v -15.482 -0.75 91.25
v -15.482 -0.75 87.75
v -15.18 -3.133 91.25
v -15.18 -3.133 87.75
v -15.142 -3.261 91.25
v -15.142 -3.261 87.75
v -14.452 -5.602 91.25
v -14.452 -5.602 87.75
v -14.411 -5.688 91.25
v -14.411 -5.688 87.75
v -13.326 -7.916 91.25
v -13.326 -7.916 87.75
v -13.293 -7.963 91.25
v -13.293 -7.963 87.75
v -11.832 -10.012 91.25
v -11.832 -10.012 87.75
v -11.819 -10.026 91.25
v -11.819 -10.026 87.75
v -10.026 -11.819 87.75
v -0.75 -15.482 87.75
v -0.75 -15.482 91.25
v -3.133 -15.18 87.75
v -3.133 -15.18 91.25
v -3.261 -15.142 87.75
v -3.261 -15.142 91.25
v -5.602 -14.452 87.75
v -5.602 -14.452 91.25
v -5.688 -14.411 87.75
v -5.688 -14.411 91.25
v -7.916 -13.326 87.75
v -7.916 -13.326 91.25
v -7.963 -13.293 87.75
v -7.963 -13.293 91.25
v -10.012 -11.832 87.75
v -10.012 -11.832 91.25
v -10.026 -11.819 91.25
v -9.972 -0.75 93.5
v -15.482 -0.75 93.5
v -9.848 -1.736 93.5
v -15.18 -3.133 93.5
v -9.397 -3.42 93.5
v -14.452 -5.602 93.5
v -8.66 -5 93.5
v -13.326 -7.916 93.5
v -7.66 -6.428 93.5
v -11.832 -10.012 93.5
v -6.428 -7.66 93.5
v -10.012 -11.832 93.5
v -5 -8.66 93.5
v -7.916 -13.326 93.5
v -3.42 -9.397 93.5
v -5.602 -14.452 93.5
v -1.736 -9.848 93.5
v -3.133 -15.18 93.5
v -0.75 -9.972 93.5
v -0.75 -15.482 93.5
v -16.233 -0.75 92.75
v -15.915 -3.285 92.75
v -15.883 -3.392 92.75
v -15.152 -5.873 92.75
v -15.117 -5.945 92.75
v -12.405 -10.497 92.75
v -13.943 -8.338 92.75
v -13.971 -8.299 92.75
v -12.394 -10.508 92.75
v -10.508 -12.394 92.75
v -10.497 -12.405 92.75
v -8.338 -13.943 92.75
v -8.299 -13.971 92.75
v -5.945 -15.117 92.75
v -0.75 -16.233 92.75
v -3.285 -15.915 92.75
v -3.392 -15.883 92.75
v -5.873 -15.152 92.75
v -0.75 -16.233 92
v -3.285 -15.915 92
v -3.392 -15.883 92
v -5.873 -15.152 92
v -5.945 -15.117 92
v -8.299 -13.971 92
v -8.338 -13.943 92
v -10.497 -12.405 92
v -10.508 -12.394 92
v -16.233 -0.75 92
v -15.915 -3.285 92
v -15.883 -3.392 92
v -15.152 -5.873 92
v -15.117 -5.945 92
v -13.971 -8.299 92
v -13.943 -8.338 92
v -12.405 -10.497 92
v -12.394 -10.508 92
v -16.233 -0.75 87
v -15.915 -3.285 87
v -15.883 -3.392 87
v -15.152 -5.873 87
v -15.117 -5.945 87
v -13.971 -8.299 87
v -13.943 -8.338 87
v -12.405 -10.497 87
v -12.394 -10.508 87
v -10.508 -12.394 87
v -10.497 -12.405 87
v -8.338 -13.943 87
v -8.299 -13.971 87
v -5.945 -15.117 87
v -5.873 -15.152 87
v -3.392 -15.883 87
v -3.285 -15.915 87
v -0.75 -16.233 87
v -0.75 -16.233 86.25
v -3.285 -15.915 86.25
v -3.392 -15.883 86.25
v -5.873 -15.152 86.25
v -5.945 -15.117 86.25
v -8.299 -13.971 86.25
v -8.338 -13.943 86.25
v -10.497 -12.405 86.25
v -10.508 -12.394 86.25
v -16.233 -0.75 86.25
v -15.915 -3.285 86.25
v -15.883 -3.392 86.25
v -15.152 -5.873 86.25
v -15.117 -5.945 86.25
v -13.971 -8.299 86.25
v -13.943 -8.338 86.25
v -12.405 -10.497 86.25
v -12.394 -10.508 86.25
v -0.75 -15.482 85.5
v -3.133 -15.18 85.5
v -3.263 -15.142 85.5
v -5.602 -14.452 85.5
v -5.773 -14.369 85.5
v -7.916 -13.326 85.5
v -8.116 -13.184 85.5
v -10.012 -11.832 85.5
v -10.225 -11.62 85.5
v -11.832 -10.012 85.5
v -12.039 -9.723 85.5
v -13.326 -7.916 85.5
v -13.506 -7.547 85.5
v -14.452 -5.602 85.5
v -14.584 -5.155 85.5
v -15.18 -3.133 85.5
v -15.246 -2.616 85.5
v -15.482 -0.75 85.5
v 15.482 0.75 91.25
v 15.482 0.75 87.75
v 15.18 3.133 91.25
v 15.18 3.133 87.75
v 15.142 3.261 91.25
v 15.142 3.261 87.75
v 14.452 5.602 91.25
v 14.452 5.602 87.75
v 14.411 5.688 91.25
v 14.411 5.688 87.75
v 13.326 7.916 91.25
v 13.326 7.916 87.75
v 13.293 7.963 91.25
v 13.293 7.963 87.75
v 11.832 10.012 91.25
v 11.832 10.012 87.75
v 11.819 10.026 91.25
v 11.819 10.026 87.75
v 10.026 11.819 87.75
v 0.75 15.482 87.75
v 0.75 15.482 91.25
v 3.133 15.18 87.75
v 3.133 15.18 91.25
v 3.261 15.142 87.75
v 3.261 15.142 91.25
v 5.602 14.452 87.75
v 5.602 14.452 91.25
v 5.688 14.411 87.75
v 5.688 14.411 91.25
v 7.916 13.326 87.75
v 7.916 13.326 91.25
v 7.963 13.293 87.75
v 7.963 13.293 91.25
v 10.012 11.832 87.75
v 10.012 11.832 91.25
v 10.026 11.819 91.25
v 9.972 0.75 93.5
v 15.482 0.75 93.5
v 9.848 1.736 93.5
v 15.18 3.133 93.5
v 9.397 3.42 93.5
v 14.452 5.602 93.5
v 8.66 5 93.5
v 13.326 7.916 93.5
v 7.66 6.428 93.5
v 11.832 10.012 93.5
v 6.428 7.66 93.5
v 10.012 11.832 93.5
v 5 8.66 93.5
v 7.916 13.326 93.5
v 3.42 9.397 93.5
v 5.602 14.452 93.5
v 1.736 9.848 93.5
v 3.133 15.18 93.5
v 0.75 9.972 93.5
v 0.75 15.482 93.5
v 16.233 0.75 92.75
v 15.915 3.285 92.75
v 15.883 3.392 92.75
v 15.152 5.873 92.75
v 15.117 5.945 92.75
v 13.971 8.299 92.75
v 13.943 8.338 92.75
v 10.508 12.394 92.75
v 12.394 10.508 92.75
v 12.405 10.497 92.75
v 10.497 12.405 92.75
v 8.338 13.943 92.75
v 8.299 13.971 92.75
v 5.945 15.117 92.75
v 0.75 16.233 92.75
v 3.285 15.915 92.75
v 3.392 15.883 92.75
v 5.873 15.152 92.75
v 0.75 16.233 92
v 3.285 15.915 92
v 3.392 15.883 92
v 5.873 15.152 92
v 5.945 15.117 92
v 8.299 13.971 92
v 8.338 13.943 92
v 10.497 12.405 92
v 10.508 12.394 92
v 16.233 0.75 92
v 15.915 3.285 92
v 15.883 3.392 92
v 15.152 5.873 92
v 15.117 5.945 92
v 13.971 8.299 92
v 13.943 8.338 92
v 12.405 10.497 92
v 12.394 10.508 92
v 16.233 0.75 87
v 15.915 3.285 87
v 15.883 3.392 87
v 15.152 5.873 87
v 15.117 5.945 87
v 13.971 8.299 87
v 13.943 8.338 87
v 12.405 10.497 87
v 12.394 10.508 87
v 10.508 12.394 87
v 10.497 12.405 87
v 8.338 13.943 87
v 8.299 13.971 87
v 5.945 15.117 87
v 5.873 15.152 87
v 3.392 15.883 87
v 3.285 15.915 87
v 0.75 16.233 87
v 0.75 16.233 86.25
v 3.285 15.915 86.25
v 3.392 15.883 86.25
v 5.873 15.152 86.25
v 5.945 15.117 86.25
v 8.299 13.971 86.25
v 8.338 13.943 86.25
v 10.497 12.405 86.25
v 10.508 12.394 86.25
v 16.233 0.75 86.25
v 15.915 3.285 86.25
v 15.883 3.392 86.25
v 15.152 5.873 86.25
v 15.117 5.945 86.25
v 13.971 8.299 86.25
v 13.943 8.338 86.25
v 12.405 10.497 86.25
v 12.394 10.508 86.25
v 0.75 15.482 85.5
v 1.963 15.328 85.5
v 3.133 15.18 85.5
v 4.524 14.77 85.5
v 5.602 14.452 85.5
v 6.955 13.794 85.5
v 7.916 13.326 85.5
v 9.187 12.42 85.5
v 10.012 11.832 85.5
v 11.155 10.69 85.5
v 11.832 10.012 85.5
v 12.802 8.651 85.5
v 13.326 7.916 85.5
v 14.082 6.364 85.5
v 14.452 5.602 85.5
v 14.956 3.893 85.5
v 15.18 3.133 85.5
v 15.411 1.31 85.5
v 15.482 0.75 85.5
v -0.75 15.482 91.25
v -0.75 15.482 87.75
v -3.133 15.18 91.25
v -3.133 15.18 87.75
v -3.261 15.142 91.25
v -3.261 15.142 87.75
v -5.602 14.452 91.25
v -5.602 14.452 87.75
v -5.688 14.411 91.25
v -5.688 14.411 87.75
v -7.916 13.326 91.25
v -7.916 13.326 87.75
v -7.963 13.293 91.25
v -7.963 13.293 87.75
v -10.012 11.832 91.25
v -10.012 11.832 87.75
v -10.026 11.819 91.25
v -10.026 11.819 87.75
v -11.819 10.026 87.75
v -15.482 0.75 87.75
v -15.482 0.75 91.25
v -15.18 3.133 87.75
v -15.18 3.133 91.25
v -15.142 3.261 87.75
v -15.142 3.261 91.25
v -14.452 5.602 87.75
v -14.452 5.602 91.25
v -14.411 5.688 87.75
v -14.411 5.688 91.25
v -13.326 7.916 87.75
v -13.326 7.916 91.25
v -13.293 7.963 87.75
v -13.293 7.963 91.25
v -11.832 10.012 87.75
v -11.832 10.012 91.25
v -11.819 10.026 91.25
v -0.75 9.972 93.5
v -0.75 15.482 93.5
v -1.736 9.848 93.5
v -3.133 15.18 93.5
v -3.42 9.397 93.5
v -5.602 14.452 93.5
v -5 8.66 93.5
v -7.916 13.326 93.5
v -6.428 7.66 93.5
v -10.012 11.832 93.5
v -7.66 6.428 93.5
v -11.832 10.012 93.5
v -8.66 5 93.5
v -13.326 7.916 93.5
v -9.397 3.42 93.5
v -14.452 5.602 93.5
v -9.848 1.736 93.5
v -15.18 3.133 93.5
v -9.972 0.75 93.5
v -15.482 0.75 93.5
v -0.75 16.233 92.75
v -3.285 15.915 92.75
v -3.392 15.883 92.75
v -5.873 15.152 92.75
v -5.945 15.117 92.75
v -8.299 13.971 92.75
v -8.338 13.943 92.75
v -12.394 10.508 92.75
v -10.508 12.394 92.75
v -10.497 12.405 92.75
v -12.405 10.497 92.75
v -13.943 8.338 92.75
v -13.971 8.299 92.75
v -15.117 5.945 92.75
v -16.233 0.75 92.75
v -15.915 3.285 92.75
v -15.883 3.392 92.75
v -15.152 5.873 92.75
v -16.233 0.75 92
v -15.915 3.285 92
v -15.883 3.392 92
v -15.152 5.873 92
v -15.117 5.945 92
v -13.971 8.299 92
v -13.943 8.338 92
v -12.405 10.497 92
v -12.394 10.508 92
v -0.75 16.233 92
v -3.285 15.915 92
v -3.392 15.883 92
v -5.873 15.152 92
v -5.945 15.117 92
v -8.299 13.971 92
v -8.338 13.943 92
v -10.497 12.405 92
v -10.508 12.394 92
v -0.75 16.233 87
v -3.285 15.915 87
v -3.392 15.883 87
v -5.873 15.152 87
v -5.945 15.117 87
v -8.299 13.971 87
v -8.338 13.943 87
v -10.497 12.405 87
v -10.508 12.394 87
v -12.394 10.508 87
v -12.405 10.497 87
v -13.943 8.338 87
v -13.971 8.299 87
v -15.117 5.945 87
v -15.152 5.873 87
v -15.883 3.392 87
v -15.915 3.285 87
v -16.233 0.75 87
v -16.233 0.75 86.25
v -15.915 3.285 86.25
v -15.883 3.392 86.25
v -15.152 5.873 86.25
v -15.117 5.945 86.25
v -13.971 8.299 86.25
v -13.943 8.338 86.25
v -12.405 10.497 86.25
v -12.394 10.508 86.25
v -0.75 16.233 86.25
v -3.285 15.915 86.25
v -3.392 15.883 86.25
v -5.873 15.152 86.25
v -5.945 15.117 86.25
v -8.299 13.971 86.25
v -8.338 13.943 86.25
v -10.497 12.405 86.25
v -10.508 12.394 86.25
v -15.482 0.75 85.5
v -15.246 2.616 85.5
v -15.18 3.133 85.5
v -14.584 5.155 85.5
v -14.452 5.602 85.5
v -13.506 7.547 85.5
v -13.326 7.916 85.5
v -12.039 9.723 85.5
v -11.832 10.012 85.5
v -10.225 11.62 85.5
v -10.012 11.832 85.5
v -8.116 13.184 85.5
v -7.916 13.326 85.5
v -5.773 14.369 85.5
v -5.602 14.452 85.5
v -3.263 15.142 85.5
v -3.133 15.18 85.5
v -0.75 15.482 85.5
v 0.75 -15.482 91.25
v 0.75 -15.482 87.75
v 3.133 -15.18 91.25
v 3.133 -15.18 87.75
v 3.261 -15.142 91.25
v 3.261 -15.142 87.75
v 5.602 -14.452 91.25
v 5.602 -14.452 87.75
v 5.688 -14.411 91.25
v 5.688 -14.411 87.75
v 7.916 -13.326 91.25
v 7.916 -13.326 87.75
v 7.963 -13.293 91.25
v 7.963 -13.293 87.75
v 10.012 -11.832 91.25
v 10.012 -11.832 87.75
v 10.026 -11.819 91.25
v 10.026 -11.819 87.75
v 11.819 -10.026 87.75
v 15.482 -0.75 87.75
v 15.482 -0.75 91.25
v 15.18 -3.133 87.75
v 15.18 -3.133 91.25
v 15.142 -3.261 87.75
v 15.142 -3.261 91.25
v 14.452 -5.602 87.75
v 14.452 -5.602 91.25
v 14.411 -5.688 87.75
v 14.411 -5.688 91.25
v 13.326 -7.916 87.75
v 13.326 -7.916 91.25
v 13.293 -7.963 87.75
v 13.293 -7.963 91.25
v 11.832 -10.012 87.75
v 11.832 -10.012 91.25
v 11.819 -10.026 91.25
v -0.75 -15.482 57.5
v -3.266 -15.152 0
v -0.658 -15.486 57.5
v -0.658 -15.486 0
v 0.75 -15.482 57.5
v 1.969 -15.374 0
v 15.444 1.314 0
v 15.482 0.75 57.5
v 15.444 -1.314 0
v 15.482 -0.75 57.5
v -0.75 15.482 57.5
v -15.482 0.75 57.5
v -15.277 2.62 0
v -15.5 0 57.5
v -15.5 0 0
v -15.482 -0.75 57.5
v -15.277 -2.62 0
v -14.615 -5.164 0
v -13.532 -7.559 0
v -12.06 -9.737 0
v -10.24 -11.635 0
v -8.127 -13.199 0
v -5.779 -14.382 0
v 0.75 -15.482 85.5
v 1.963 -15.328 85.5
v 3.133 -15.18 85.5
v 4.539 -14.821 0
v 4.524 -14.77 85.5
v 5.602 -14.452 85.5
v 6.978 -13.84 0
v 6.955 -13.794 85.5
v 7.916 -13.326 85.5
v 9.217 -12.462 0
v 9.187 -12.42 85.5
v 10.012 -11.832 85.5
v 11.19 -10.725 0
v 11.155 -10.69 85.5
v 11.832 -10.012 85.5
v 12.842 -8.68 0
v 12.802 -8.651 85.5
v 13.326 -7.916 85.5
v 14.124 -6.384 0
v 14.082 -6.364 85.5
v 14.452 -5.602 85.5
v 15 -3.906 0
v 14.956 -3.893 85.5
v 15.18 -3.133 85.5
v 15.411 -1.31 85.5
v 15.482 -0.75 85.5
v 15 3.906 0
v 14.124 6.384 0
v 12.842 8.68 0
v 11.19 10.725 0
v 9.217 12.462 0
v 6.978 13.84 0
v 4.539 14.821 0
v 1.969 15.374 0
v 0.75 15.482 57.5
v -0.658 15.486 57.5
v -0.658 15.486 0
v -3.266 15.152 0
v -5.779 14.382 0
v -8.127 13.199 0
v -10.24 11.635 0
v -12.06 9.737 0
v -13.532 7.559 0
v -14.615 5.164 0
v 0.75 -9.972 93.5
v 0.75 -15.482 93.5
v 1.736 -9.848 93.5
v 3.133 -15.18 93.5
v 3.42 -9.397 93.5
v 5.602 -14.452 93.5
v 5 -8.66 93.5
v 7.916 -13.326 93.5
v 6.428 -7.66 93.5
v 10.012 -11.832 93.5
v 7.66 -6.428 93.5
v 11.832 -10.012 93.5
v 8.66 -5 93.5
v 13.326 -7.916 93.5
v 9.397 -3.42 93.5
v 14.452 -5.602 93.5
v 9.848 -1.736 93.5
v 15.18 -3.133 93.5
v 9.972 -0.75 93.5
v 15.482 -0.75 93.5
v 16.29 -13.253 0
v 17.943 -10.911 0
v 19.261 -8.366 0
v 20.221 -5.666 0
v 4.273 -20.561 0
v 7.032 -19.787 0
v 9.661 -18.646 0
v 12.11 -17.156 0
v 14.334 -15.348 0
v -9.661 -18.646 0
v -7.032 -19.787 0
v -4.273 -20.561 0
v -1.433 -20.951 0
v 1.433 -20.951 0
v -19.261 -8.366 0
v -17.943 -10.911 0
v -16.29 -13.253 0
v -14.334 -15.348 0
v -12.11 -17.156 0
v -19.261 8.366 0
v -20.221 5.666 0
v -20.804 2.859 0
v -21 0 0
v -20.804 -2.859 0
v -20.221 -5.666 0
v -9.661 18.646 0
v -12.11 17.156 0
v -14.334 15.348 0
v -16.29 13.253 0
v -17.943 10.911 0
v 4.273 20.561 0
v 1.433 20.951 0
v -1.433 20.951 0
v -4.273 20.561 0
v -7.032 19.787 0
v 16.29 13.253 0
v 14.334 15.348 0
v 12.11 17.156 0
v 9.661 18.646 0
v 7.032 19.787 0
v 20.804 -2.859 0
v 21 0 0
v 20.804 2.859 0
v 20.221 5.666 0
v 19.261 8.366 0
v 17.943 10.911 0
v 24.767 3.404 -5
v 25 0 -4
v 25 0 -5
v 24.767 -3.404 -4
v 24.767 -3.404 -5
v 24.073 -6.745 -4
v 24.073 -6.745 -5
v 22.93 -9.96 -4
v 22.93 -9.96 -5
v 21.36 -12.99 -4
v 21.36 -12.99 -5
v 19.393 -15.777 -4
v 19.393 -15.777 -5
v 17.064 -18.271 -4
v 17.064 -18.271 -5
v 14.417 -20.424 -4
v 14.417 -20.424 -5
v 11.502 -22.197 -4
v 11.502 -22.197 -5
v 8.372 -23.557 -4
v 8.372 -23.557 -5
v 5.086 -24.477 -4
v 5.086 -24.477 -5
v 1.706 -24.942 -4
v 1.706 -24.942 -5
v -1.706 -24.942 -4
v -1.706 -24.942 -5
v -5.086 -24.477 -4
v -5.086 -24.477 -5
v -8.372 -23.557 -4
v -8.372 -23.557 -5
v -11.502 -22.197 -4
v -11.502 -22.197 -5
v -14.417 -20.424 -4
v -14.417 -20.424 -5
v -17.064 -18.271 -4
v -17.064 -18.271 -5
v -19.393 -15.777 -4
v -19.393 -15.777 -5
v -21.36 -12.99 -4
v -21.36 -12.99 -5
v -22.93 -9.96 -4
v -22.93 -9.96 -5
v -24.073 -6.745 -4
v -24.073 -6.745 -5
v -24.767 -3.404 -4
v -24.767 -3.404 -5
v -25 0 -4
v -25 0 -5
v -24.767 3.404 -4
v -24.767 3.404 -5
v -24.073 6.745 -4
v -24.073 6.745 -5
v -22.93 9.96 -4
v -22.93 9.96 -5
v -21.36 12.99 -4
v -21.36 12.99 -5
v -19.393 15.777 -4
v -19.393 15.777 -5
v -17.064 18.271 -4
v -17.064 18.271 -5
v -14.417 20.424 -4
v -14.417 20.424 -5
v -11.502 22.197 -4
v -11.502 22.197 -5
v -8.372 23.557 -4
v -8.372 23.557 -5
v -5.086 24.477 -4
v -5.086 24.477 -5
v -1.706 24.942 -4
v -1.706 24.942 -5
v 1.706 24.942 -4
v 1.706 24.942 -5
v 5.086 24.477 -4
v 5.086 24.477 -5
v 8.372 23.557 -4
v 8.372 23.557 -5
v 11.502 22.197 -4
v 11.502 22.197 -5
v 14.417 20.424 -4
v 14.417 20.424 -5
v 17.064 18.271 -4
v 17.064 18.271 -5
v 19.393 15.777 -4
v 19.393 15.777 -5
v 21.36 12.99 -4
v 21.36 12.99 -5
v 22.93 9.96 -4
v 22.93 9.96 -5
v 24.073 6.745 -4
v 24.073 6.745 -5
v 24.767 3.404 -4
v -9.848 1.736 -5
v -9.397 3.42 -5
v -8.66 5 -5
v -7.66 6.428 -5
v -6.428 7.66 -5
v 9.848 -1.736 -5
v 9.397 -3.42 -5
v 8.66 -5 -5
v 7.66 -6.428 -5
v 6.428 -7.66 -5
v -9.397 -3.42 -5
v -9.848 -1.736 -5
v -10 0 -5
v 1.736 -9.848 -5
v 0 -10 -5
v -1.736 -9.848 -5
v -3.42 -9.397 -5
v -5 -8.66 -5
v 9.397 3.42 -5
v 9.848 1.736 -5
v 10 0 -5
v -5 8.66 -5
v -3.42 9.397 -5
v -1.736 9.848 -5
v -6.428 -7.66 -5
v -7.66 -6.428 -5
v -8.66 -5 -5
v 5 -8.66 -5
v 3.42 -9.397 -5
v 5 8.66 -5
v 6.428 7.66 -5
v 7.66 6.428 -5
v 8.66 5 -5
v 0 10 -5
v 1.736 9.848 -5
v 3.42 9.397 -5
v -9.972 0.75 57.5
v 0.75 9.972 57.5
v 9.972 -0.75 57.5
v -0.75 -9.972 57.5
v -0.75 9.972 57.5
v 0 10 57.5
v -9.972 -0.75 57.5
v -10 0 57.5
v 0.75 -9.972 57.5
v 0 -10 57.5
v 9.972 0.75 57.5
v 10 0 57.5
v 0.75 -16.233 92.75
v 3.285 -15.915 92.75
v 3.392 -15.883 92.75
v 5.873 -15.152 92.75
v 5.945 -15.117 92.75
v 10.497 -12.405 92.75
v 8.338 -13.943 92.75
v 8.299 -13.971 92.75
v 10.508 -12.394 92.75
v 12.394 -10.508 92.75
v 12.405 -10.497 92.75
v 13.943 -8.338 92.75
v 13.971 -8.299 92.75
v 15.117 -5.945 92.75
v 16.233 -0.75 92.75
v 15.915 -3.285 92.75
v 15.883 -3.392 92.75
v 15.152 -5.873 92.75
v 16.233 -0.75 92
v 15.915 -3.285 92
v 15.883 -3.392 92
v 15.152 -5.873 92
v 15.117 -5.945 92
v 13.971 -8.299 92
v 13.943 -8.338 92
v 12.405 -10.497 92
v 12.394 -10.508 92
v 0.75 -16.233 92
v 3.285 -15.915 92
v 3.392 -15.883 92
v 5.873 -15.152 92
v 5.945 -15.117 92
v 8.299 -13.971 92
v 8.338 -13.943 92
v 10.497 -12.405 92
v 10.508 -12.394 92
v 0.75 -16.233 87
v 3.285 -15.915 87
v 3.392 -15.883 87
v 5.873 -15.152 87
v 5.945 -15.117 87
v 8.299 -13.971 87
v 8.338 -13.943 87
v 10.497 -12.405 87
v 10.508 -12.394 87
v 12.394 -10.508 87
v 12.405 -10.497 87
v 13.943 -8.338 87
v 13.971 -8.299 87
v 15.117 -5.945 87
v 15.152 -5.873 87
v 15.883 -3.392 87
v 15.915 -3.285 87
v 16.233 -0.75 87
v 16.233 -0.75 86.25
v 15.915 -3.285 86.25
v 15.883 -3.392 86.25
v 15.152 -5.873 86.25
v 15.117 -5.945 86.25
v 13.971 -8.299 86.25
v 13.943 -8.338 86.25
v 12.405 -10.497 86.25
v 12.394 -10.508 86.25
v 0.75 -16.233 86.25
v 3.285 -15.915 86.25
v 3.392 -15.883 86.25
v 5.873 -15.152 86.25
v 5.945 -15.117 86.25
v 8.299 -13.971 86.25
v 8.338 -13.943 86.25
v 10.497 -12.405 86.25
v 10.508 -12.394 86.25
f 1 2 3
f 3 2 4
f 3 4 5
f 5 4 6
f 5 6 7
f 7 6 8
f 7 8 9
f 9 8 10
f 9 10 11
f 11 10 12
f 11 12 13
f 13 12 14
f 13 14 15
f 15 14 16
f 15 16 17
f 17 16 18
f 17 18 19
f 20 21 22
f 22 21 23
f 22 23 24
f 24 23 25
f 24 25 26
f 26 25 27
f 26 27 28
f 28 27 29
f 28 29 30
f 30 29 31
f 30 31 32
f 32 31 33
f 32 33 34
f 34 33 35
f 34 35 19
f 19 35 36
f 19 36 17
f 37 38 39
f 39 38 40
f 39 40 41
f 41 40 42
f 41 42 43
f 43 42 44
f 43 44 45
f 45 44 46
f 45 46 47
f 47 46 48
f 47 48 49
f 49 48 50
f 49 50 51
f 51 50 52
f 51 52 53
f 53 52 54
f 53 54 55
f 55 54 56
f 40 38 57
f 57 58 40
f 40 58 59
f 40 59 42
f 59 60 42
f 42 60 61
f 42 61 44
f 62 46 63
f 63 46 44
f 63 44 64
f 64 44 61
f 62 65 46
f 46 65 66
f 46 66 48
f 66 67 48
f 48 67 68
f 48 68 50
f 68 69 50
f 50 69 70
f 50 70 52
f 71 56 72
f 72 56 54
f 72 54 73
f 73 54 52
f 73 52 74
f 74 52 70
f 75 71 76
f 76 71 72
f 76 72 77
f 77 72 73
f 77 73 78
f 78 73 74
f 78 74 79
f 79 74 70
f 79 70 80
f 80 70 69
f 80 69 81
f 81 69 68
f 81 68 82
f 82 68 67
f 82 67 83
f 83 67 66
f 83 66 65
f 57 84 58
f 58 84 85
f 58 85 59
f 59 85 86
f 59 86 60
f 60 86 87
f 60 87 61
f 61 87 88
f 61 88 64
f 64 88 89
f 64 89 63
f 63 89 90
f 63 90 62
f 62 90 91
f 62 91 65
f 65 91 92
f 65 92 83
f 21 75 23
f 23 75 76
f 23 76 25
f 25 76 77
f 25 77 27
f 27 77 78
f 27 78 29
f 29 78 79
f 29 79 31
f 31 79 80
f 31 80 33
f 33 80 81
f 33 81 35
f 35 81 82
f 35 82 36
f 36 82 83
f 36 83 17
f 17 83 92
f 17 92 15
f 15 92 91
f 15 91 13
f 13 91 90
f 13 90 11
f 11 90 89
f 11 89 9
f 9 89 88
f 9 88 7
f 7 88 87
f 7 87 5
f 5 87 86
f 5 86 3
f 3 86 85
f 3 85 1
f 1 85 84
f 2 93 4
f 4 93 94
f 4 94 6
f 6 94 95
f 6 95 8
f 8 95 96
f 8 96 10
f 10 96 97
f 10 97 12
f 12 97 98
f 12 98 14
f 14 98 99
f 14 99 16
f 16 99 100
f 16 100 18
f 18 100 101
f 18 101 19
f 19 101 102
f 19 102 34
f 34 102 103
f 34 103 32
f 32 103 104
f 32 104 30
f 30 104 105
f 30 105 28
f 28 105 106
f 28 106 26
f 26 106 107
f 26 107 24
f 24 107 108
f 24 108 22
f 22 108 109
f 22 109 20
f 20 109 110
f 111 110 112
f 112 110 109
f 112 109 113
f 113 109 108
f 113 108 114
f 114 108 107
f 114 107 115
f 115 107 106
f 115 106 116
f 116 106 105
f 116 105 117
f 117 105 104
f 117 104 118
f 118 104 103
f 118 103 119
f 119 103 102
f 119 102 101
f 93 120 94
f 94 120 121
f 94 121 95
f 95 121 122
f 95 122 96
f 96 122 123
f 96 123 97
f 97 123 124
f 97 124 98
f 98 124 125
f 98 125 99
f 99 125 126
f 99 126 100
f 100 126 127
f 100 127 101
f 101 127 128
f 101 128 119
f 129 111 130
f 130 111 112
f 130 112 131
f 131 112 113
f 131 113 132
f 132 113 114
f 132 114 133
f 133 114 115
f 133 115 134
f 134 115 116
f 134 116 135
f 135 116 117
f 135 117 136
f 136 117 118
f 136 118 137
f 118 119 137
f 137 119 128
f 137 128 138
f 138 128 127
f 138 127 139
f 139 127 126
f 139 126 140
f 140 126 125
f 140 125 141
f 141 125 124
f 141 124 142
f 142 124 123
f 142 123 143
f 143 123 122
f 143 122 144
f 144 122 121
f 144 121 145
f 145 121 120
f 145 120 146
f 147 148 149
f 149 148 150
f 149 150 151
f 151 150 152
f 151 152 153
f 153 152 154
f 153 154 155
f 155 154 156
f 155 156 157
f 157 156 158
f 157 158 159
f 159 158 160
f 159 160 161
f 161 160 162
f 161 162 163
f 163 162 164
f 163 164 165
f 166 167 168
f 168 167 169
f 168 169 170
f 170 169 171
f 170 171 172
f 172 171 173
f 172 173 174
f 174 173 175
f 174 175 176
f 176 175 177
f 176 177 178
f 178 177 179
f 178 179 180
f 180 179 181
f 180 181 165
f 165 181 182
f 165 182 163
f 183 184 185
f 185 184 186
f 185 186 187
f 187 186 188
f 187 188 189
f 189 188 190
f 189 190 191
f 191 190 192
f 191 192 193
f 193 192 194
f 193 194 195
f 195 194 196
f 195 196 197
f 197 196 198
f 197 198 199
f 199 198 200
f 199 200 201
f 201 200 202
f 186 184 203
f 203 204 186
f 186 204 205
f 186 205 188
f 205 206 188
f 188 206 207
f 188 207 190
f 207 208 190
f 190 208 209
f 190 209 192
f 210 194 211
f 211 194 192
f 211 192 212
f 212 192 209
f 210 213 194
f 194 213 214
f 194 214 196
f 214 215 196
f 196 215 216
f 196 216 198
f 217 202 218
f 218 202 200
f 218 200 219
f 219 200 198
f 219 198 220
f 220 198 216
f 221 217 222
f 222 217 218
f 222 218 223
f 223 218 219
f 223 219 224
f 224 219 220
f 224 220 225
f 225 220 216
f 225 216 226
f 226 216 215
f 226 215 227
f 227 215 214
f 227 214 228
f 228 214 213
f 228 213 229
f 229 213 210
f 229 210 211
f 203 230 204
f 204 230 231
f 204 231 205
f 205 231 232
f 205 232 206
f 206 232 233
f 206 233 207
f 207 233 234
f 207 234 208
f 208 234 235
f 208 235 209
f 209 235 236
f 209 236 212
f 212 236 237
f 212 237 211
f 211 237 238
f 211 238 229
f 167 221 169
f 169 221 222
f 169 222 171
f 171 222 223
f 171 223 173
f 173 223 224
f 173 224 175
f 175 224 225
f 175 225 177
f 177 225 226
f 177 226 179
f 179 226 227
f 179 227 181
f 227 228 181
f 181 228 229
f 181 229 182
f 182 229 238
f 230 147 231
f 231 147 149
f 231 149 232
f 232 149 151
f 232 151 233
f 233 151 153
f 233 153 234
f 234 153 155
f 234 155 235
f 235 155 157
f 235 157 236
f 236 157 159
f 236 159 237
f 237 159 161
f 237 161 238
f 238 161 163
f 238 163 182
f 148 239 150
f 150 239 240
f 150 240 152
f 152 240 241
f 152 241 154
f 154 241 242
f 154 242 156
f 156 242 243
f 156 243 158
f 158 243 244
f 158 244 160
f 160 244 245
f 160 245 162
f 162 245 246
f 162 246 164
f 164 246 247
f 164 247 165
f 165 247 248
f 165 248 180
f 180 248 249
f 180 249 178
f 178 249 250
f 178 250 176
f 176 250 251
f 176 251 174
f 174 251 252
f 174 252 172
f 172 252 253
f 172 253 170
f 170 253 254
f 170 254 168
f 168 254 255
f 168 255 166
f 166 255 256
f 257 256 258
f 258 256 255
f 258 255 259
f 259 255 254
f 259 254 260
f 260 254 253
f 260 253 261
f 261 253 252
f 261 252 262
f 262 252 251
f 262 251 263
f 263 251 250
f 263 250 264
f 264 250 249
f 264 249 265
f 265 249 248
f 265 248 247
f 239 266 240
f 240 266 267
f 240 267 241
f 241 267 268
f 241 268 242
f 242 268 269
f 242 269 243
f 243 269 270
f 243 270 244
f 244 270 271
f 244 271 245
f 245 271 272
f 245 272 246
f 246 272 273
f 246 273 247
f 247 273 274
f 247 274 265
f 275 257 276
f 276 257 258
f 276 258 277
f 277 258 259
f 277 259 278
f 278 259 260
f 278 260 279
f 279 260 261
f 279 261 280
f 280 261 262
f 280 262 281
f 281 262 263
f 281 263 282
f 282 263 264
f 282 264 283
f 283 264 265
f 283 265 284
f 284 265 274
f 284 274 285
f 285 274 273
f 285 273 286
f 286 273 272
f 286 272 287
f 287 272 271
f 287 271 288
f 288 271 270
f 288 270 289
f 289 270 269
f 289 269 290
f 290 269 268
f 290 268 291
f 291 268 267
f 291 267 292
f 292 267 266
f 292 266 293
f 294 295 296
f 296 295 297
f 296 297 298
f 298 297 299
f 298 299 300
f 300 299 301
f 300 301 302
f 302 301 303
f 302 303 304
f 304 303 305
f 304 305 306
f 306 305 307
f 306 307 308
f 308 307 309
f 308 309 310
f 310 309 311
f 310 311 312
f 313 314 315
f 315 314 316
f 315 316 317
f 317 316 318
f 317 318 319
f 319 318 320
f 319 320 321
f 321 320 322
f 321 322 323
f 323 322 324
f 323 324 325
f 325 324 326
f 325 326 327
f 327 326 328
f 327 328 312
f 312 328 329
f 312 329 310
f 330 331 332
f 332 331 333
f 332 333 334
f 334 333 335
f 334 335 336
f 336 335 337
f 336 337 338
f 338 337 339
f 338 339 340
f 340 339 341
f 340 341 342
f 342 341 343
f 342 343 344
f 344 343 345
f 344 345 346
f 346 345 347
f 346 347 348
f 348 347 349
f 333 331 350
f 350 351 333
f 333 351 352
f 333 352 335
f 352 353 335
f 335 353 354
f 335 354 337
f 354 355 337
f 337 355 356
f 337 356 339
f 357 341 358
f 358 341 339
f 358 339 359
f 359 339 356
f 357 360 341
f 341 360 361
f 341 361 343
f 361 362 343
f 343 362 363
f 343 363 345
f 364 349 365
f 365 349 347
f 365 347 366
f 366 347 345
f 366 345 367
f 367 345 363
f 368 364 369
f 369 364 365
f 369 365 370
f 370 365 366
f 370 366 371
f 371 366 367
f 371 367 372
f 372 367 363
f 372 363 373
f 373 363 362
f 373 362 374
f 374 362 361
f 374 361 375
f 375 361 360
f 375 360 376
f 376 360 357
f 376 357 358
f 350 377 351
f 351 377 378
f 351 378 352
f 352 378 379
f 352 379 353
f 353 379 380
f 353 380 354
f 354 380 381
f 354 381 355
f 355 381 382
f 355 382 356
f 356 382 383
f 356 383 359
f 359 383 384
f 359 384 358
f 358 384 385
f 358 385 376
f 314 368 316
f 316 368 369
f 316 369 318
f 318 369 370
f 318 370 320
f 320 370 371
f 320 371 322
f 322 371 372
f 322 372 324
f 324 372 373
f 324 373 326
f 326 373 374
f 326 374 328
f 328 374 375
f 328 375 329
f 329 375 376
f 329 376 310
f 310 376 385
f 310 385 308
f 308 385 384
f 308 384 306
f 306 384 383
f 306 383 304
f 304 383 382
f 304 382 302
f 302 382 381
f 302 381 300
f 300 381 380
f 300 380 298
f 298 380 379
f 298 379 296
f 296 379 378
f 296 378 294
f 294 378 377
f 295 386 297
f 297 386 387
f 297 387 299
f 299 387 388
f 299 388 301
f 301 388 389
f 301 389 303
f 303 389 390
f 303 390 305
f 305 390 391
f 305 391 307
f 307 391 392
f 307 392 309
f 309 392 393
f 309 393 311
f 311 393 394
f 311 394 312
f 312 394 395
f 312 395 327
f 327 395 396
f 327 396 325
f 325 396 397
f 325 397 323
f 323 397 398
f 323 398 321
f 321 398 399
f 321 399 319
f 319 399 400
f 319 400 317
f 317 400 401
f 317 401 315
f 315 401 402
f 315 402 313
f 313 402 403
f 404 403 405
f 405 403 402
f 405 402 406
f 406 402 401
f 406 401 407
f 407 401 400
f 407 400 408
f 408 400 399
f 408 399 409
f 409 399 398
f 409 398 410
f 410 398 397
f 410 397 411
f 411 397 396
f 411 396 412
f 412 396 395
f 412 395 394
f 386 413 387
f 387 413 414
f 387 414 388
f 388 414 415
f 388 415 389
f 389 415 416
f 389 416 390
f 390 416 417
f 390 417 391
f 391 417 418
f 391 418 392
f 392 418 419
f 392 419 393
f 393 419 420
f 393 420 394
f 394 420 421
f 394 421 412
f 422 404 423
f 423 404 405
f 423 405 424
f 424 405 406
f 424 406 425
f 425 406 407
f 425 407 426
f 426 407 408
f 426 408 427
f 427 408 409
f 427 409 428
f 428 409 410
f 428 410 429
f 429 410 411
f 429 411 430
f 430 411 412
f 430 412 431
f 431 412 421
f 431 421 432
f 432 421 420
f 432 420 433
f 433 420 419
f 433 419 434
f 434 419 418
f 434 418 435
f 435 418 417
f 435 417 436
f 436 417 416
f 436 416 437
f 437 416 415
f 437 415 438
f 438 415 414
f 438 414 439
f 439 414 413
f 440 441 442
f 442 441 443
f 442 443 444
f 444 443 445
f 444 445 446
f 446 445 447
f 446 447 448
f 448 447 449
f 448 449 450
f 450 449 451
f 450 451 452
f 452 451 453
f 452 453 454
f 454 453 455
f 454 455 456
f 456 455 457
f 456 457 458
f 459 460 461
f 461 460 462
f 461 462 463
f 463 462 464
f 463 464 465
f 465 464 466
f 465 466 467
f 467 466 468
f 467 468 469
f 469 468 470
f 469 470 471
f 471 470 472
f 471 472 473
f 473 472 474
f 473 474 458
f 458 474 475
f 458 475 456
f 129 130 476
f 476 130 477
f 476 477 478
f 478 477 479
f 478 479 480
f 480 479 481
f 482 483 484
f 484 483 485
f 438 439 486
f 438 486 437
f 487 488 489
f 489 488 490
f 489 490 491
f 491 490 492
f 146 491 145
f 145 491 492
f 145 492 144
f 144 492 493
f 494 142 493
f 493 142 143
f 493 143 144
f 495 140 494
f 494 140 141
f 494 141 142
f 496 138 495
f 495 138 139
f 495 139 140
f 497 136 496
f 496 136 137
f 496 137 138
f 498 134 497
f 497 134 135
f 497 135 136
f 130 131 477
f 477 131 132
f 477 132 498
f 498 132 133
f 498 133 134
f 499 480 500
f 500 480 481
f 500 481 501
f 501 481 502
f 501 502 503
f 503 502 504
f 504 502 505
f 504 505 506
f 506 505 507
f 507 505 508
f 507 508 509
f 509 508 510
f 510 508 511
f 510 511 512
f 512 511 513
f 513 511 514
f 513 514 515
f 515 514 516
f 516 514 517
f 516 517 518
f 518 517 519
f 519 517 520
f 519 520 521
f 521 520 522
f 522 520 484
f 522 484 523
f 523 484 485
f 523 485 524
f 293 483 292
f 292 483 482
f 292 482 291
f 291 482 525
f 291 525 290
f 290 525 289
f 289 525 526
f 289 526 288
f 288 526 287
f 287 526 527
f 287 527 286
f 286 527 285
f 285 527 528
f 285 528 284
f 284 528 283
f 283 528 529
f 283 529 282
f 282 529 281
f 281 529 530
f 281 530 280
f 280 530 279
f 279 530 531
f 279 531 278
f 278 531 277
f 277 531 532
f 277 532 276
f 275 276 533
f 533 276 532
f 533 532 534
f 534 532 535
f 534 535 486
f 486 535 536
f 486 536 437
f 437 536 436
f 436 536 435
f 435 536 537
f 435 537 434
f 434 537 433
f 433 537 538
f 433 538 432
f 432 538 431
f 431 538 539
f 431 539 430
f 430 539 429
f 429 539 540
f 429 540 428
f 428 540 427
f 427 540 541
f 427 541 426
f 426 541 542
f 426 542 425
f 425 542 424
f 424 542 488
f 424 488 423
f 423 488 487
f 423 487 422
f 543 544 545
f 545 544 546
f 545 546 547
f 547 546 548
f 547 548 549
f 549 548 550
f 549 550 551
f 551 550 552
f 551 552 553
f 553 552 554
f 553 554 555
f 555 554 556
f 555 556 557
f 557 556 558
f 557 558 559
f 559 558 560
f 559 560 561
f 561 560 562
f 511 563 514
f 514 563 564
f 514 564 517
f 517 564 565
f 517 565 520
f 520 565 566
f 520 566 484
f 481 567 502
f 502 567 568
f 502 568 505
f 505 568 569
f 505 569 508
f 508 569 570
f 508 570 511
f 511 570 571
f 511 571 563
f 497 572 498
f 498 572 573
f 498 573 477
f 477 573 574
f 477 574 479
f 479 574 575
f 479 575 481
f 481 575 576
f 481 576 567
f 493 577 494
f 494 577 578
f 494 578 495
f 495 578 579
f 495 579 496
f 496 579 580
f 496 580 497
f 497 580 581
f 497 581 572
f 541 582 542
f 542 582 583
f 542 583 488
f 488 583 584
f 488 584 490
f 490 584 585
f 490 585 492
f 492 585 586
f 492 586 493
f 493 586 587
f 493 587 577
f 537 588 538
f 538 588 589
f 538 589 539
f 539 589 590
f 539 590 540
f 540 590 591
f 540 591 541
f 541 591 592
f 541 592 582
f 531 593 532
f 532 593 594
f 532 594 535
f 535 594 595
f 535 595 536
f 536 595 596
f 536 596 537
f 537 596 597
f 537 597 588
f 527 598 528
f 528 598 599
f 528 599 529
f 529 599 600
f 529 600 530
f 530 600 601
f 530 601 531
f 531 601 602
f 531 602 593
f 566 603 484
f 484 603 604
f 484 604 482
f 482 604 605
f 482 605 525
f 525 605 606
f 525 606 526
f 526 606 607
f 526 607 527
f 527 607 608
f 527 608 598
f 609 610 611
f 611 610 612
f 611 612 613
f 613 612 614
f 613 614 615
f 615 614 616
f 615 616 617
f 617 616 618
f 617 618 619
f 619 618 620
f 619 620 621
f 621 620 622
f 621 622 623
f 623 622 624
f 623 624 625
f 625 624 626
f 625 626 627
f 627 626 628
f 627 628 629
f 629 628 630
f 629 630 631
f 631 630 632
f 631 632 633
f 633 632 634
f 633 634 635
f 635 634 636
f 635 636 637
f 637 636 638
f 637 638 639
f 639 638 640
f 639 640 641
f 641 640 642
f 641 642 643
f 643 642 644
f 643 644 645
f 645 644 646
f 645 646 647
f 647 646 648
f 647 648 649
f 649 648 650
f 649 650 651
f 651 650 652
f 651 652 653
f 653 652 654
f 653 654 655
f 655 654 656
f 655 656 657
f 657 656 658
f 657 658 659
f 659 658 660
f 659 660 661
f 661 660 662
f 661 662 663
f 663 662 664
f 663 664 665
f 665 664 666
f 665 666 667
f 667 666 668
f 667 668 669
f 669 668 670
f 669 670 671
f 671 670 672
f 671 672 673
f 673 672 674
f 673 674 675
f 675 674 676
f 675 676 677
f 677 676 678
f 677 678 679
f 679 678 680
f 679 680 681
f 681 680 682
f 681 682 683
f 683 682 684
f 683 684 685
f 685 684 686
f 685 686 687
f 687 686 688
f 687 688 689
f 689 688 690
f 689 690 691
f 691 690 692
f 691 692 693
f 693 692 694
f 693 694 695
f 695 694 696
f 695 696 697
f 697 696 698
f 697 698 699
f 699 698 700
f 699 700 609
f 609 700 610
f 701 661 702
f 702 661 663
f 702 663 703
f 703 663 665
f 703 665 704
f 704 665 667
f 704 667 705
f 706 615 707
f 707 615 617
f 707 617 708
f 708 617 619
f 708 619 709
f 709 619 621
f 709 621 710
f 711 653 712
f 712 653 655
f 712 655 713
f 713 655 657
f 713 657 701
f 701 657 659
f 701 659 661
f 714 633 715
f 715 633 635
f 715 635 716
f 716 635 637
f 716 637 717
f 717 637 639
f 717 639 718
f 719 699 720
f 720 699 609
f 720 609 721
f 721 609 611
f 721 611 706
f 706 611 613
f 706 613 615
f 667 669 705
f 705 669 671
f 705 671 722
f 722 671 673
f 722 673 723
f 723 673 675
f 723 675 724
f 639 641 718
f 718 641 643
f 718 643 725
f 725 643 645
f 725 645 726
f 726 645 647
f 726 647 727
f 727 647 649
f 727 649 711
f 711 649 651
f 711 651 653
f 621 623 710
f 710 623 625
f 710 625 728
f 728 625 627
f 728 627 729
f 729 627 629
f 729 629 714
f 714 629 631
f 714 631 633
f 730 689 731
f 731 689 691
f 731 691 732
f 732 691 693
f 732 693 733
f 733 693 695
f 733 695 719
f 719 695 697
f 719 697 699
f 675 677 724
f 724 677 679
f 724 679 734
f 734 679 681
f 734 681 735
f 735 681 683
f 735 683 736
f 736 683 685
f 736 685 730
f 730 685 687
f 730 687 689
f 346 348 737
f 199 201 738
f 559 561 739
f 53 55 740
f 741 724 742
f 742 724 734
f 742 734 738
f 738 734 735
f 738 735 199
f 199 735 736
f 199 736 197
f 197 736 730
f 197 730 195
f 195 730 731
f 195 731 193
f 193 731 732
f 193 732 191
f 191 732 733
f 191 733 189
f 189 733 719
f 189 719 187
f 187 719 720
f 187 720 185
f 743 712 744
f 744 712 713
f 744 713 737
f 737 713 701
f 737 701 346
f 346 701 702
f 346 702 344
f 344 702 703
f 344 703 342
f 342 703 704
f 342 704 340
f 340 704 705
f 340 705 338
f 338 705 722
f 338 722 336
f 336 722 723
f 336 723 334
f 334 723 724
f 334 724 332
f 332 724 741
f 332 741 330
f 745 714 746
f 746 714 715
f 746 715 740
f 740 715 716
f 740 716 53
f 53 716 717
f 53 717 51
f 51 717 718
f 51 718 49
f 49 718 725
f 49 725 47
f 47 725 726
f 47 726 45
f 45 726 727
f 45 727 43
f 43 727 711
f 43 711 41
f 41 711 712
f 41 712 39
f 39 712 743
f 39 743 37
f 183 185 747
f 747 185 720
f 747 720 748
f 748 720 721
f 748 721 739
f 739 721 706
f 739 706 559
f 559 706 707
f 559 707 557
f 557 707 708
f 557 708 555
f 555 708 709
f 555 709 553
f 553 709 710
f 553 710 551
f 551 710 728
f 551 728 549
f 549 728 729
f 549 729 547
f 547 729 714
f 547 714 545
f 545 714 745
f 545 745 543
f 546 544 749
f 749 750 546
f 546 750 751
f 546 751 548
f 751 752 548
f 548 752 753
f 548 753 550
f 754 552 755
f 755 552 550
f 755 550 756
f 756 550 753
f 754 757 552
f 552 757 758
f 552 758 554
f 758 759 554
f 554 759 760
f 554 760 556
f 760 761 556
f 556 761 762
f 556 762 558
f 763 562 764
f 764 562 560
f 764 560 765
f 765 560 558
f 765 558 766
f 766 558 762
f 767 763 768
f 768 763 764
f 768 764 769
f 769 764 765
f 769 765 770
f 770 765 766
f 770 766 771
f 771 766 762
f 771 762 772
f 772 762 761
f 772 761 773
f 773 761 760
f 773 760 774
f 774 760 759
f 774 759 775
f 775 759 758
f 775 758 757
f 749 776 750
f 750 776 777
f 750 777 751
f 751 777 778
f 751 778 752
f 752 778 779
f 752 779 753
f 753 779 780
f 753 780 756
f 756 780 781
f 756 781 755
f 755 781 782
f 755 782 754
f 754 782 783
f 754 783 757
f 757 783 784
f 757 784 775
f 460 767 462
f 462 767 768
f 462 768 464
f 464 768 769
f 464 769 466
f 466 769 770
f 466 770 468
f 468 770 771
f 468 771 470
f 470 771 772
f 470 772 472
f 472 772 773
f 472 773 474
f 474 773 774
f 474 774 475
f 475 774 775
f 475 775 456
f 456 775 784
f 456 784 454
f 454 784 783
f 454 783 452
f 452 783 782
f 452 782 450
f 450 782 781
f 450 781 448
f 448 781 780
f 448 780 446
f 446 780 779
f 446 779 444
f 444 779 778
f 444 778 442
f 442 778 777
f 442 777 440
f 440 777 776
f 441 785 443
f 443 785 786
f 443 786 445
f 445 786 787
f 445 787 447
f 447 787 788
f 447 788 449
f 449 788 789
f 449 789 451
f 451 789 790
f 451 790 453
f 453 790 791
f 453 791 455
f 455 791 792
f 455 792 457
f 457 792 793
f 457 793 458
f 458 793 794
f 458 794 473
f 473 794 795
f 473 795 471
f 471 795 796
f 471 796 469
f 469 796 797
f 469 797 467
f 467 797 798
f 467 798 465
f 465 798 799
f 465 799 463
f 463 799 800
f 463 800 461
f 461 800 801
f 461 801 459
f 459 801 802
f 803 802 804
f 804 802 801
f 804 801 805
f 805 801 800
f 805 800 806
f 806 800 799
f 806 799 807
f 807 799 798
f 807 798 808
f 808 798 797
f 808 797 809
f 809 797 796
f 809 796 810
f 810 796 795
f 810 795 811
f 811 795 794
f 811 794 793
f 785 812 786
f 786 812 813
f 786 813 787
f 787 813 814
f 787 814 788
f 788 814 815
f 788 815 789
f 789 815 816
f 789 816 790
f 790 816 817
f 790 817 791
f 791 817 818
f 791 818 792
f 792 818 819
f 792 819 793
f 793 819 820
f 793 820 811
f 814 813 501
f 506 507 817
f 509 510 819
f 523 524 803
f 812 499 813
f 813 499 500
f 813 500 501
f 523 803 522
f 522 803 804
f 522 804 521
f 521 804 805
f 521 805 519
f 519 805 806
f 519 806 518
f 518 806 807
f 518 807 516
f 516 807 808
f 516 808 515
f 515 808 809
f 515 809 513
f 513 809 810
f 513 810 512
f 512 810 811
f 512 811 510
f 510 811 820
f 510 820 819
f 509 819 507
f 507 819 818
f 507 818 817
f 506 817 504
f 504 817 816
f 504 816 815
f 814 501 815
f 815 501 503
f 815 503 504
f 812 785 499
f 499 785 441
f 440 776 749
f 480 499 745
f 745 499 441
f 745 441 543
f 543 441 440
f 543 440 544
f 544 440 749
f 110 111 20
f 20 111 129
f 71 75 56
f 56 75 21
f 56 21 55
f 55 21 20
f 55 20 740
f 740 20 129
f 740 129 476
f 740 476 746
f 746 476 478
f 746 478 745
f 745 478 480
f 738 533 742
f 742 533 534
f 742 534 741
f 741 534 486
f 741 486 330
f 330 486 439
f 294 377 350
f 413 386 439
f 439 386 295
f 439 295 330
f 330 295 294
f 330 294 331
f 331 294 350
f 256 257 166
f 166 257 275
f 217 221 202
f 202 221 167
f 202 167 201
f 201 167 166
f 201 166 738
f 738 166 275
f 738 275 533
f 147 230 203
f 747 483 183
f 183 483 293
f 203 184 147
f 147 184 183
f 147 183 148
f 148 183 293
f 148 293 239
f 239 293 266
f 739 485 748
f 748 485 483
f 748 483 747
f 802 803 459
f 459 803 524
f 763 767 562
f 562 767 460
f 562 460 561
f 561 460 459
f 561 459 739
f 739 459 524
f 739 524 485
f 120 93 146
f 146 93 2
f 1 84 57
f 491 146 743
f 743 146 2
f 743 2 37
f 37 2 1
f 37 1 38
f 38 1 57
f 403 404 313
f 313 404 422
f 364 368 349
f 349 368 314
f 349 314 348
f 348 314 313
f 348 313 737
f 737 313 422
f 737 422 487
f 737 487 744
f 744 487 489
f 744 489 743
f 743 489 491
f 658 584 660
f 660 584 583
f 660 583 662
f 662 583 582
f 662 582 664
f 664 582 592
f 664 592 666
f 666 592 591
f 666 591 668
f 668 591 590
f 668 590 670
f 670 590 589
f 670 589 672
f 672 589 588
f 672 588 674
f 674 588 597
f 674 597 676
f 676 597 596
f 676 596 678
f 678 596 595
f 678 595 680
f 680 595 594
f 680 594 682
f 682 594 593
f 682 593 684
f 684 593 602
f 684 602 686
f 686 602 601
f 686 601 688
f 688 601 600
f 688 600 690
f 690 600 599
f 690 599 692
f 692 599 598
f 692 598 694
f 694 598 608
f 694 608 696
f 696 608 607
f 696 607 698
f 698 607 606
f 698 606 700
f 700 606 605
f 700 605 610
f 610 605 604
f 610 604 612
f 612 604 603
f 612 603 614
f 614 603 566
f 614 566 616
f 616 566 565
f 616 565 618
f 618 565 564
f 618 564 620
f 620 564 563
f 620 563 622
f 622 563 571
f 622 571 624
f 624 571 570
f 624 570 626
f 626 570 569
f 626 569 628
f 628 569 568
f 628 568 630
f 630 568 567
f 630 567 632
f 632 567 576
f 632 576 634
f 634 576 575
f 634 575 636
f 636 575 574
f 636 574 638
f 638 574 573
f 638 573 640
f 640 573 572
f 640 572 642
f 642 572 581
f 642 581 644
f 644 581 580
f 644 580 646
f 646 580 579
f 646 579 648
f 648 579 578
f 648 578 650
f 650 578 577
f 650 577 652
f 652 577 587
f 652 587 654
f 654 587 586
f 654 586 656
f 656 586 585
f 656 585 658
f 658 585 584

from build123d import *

# Parameters (mm, degrees)
AXLE_BASE_SKETCH_R     = 15.5
AXLE_DEPTH             = 93.5
GUARD_BASE_R           = 25
GUARD_DEPTH            = 5
INNER_AXLE_HOLE_BASE_R = 10
INNER_AXLE_HOLE_DEPTH  = 99.5
BEND_ROOM_BASE_W       = 1.5
BEND_ROOM_BASE_H       = 50
BEND_ROOM_1_DEPTH      = 36
BEND_ROOM_2_COUNT      = 2
BEND_ROOM_2_ANGLE      = 90
CHAMFER1_SIZE          = 4


with BuildPart() as part:
    # Axle base sketch → Axle (new body)
    with BuildSketch(Plane.XY):
        Circle(AXLE_BASE_SKETCH_R)
    extrude(amount=AXLE_DEPTH)

    # Guard base → Guard (add)
    with BuildSketch(Plane(origin=(0, 0, 0), x_dir=(-1, 0, 0), z_dir=(0, 0, -1))):
        Circle(GUARD_BASE_R)
    extrude(amount=GUARD_DEPTH)

    # Inner axle hole base → Inner axle hole (cut, through all)
    with BuildSketch(Plane.XY.offset(93.5)):
        Circle(INNER_AXLE_HOLE_BASE_R)
    extrude(amount=-INNER_AXLE_HOLE_DEPTH, mode=Mode.SUBTRACT)

    # Mate ring base → Mate rings (revolve)
    with BuildSketch(Plane(origin=(0, 0, 0), x_dir=(1, 0, 0), z_dir=(0, 1, 0))):
        Polygon((15.5, -93.5), (16.25, -92.75), (16.25, -92), (15.5, -91.25), align=None)
        Polygon((15.5, -87.75), (16.25, -87), (16.25, -86.25), (15.5, -85.5), align=None)
    revolve(axis=Axis((0, 0, 0), (0, 0, -1)))

    # Bend room base → Bend room 1 (cut)
    with BuildSketch(Plane.XY.offset(93.5)):
        Rectangle(BEND_ROOM_BASE_W, BEND_ROOM_BASE_H)
    bend_room_1 = extrude(amount=-BEND_ROOM_1_DEPTH, mode=Mode.SUBTRACT)

    # Bend room 2: Bend room 1 ×2 about axis
    bend_room_2_axis = Axis((0, 0, 0), (0, 0, -1))
    for i in range(1, BEND_ROOM_2_COUNT):
        add(bend_room_1.rotate(bend_room_2_axis, i * BEND_ROOM_2_ANGLE / (BEND_ROOM_2_COUNT - 1)), mode=Mode.SUBTRACT)

    # Chamfer1
    chamfer1_edges = [part.edges().sort_by_distance(p)[0] for p in [
        (25, 0, 0),
    ]]
    chamfer(chamfer1_edges, length=CHAMFER1_SIZE)


solid = part.part
